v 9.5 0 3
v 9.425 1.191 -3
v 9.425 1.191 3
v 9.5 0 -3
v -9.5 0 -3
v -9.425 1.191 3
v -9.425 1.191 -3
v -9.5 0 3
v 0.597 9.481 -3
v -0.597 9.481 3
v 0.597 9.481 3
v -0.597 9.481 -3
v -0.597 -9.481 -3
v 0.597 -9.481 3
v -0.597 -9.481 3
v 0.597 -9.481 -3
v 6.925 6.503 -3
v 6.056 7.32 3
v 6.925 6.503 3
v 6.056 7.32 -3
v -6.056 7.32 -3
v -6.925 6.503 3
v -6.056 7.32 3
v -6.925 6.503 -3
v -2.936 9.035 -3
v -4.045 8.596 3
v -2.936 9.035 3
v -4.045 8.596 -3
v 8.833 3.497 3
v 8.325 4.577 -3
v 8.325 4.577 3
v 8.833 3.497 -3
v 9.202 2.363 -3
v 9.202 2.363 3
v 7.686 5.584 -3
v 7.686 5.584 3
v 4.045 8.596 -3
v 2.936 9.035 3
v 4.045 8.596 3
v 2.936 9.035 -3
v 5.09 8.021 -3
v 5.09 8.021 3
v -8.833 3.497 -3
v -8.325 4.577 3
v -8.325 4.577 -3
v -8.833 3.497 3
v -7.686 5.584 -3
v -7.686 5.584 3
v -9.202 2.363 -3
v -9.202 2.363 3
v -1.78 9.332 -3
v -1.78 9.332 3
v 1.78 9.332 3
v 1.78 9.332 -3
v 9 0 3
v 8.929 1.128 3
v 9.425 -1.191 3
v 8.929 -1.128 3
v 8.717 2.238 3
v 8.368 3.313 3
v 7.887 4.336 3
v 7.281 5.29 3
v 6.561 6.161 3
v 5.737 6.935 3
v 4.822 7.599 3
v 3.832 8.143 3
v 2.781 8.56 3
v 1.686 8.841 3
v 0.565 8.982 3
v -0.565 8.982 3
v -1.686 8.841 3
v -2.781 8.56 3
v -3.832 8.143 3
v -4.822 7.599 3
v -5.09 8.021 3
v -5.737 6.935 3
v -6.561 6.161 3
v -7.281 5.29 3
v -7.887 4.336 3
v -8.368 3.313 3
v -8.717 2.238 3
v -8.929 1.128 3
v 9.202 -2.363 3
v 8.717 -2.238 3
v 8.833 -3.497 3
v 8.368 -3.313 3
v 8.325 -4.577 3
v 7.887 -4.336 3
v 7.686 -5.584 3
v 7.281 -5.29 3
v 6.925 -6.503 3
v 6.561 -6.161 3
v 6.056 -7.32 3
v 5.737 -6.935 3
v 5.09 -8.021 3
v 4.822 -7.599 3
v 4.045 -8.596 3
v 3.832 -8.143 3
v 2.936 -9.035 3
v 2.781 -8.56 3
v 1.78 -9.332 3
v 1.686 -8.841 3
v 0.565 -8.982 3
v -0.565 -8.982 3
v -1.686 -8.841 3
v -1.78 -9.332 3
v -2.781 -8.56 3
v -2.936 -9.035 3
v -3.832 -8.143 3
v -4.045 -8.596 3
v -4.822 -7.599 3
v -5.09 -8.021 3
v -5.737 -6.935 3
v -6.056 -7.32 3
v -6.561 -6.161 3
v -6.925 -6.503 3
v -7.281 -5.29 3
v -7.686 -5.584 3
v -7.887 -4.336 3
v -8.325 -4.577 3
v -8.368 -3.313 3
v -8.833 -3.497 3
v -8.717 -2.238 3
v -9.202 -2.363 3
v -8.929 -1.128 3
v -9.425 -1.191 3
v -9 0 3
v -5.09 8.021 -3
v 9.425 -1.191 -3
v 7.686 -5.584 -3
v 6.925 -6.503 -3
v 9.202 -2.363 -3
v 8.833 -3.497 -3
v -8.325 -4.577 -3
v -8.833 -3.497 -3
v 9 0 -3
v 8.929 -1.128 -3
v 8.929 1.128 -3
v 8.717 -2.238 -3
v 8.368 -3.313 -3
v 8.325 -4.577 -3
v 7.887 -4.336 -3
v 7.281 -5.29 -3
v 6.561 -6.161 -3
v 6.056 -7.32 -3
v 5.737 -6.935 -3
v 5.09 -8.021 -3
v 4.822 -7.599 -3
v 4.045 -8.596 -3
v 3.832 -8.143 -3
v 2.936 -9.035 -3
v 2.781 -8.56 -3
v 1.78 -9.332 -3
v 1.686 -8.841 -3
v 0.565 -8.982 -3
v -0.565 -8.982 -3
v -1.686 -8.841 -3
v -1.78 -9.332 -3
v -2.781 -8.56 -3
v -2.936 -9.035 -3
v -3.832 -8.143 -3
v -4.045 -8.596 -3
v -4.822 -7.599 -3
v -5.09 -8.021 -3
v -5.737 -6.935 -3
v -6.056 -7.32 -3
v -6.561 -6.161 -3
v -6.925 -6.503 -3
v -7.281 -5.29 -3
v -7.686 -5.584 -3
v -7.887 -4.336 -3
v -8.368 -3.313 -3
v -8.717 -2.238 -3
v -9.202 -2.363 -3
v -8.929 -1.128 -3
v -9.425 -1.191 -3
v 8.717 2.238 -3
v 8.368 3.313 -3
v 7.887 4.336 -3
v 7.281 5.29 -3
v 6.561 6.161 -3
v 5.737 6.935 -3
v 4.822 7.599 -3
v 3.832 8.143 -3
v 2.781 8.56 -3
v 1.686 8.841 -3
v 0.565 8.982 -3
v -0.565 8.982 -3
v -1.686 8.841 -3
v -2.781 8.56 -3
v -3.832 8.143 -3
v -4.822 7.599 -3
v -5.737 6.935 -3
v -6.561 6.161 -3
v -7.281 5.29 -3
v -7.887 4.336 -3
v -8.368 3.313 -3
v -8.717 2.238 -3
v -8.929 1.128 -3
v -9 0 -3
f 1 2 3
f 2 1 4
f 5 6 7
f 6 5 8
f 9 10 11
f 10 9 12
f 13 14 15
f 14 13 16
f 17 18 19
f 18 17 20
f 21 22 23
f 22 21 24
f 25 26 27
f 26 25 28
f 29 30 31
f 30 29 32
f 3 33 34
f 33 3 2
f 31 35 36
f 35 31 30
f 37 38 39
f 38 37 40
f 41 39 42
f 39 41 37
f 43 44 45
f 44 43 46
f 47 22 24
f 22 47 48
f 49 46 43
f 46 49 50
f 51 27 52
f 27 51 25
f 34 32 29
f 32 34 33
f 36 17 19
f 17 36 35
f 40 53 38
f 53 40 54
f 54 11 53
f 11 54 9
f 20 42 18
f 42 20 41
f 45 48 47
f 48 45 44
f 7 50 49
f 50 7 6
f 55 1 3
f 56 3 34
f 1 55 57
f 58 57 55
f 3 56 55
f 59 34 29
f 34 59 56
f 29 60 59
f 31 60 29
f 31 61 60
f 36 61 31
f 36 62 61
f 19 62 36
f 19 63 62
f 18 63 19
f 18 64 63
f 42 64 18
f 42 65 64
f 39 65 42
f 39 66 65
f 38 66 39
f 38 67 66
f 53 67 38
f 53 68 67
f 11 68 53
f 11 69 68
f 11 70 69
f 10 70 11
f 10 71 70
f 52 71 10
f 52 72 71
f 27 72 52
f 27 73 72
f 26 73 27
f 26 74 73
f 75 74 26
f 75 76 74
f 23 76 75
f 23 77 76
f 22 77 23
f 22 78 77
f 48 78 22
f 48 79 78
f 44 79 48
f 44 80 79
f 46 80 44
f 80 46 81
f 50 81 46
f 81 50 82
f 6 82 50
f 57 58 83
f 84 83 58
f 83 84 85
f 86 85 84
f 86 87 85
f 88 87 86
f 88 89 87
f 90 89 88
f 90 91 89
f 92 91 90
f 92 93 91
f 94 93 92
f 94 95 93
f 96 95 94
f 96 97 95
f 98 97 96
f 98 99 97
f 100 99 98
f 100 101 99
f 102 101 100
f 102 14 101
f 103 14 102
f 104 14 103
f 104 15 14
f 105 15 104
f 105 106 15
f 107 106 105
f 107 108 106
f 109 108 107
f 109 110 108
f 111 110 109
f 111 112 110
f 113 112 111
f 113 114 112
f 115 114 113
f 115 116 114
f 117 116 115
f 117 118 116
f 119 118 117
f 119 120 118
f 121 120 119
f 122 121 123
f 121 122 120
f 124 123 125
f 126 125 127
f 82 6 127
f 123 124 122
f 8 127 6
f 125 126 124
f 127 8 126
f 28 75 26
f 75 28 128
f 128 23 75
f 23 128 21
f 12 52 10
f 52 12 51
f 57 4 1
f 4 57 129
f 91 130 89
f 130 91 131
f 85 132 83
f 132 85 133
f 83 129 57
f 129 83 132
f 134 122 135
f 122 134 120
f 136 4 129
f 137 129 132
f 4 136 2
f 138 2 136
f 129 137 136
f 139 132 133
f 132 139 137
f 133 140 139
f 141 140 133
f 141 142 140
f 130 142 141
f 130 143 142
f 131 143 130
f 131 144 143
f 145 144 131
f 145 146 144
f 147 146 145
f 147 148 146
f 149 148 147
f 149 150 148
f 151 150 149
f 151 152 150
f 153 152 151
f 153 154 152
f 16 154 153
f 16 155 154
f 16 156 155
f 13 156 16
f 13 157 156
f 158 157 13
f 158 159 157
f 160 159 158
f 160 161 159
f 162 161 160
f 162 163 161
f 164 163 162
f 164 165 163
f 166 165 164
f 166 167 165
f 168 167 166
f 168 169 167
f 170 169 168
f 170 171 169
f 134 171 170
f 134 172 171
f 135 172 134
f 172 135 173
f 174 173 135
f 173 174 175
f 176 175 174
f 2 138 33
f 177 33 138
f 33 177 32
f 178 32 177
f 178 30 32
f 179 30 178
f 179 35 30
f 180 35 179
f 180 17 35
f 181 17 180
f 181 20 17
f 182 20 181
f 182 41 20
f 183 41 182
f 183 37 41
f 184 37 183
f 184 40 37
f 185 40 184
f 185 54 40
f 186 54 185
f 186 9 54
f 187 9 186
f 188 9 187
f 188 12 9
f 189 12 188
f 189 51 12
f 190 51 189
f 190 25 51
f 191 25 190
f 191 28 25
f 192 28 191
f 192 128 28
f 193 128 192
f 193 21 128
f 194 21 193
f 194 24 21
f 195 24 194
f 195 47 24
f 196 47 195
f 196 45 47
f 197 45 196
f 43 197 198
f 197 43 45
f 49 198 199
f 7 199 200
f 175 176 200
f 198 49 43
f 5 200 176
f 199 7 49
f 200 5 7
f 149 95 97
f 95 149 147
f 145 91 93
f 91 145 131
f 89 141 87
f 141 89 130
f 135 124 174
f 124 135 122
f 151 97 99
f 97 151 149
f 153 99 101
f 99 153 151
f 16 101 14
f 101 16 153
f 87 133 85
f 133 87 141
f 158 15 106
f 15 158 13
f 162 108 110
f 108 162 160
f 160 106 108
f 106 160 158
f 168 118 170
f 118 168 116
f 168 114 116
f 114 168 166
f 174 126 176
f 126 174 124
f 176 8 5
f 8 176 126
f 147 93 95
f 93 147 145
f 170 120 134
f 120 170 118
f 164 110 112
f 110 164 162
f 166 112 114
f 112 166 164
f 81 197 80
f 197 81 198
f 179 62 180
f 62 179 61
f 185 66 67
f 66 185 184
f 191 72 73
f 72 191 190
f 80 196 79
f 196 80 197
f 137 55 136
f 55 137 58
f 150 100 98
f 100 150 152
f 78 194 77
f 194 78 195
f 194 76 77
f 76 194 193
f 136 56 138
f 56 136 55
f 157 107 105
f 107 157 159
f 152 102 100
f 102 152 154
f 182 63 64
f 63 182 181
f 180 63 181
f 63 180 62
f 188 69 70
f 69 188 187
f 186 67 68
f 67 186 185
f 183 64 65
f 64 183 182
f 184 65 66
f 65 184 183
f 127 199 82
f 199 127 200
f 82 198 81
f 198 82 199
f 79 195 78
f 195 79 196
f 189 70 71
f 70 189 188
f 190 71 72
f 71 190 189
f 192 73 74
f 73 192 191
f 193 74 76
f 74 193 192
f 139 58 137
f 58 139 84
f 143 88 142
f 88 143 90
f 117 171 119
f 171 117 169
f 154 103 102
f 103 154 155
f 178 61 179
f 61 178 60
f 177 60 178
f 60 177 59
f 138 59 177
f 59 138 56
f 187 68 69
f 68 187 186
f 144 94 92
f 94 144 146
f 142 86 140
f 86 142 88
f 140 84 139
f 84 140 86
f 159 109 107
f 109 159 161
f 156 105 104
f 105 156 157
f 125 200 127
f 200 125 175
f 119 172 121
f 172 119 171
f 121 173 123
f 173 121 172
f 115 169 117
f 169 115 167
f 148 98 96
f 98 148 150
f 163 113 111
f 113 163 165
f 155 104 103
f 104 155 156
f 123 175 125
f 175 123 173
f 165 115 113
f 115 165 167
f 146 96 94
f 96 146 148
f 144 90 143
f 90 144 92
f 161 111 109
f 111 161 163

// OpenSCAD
$fn = 50;


difference() {
	union() {
		translate(v = [0, 0, -3.0000000000]) {
			cylinder(h = 6, r = 9.5000000000);
		}
	}
	union() {
		translate(v = [0, 0, -100.0000000000]) {
			cylinder(h = 200, r = 9);
		}
	}
}
